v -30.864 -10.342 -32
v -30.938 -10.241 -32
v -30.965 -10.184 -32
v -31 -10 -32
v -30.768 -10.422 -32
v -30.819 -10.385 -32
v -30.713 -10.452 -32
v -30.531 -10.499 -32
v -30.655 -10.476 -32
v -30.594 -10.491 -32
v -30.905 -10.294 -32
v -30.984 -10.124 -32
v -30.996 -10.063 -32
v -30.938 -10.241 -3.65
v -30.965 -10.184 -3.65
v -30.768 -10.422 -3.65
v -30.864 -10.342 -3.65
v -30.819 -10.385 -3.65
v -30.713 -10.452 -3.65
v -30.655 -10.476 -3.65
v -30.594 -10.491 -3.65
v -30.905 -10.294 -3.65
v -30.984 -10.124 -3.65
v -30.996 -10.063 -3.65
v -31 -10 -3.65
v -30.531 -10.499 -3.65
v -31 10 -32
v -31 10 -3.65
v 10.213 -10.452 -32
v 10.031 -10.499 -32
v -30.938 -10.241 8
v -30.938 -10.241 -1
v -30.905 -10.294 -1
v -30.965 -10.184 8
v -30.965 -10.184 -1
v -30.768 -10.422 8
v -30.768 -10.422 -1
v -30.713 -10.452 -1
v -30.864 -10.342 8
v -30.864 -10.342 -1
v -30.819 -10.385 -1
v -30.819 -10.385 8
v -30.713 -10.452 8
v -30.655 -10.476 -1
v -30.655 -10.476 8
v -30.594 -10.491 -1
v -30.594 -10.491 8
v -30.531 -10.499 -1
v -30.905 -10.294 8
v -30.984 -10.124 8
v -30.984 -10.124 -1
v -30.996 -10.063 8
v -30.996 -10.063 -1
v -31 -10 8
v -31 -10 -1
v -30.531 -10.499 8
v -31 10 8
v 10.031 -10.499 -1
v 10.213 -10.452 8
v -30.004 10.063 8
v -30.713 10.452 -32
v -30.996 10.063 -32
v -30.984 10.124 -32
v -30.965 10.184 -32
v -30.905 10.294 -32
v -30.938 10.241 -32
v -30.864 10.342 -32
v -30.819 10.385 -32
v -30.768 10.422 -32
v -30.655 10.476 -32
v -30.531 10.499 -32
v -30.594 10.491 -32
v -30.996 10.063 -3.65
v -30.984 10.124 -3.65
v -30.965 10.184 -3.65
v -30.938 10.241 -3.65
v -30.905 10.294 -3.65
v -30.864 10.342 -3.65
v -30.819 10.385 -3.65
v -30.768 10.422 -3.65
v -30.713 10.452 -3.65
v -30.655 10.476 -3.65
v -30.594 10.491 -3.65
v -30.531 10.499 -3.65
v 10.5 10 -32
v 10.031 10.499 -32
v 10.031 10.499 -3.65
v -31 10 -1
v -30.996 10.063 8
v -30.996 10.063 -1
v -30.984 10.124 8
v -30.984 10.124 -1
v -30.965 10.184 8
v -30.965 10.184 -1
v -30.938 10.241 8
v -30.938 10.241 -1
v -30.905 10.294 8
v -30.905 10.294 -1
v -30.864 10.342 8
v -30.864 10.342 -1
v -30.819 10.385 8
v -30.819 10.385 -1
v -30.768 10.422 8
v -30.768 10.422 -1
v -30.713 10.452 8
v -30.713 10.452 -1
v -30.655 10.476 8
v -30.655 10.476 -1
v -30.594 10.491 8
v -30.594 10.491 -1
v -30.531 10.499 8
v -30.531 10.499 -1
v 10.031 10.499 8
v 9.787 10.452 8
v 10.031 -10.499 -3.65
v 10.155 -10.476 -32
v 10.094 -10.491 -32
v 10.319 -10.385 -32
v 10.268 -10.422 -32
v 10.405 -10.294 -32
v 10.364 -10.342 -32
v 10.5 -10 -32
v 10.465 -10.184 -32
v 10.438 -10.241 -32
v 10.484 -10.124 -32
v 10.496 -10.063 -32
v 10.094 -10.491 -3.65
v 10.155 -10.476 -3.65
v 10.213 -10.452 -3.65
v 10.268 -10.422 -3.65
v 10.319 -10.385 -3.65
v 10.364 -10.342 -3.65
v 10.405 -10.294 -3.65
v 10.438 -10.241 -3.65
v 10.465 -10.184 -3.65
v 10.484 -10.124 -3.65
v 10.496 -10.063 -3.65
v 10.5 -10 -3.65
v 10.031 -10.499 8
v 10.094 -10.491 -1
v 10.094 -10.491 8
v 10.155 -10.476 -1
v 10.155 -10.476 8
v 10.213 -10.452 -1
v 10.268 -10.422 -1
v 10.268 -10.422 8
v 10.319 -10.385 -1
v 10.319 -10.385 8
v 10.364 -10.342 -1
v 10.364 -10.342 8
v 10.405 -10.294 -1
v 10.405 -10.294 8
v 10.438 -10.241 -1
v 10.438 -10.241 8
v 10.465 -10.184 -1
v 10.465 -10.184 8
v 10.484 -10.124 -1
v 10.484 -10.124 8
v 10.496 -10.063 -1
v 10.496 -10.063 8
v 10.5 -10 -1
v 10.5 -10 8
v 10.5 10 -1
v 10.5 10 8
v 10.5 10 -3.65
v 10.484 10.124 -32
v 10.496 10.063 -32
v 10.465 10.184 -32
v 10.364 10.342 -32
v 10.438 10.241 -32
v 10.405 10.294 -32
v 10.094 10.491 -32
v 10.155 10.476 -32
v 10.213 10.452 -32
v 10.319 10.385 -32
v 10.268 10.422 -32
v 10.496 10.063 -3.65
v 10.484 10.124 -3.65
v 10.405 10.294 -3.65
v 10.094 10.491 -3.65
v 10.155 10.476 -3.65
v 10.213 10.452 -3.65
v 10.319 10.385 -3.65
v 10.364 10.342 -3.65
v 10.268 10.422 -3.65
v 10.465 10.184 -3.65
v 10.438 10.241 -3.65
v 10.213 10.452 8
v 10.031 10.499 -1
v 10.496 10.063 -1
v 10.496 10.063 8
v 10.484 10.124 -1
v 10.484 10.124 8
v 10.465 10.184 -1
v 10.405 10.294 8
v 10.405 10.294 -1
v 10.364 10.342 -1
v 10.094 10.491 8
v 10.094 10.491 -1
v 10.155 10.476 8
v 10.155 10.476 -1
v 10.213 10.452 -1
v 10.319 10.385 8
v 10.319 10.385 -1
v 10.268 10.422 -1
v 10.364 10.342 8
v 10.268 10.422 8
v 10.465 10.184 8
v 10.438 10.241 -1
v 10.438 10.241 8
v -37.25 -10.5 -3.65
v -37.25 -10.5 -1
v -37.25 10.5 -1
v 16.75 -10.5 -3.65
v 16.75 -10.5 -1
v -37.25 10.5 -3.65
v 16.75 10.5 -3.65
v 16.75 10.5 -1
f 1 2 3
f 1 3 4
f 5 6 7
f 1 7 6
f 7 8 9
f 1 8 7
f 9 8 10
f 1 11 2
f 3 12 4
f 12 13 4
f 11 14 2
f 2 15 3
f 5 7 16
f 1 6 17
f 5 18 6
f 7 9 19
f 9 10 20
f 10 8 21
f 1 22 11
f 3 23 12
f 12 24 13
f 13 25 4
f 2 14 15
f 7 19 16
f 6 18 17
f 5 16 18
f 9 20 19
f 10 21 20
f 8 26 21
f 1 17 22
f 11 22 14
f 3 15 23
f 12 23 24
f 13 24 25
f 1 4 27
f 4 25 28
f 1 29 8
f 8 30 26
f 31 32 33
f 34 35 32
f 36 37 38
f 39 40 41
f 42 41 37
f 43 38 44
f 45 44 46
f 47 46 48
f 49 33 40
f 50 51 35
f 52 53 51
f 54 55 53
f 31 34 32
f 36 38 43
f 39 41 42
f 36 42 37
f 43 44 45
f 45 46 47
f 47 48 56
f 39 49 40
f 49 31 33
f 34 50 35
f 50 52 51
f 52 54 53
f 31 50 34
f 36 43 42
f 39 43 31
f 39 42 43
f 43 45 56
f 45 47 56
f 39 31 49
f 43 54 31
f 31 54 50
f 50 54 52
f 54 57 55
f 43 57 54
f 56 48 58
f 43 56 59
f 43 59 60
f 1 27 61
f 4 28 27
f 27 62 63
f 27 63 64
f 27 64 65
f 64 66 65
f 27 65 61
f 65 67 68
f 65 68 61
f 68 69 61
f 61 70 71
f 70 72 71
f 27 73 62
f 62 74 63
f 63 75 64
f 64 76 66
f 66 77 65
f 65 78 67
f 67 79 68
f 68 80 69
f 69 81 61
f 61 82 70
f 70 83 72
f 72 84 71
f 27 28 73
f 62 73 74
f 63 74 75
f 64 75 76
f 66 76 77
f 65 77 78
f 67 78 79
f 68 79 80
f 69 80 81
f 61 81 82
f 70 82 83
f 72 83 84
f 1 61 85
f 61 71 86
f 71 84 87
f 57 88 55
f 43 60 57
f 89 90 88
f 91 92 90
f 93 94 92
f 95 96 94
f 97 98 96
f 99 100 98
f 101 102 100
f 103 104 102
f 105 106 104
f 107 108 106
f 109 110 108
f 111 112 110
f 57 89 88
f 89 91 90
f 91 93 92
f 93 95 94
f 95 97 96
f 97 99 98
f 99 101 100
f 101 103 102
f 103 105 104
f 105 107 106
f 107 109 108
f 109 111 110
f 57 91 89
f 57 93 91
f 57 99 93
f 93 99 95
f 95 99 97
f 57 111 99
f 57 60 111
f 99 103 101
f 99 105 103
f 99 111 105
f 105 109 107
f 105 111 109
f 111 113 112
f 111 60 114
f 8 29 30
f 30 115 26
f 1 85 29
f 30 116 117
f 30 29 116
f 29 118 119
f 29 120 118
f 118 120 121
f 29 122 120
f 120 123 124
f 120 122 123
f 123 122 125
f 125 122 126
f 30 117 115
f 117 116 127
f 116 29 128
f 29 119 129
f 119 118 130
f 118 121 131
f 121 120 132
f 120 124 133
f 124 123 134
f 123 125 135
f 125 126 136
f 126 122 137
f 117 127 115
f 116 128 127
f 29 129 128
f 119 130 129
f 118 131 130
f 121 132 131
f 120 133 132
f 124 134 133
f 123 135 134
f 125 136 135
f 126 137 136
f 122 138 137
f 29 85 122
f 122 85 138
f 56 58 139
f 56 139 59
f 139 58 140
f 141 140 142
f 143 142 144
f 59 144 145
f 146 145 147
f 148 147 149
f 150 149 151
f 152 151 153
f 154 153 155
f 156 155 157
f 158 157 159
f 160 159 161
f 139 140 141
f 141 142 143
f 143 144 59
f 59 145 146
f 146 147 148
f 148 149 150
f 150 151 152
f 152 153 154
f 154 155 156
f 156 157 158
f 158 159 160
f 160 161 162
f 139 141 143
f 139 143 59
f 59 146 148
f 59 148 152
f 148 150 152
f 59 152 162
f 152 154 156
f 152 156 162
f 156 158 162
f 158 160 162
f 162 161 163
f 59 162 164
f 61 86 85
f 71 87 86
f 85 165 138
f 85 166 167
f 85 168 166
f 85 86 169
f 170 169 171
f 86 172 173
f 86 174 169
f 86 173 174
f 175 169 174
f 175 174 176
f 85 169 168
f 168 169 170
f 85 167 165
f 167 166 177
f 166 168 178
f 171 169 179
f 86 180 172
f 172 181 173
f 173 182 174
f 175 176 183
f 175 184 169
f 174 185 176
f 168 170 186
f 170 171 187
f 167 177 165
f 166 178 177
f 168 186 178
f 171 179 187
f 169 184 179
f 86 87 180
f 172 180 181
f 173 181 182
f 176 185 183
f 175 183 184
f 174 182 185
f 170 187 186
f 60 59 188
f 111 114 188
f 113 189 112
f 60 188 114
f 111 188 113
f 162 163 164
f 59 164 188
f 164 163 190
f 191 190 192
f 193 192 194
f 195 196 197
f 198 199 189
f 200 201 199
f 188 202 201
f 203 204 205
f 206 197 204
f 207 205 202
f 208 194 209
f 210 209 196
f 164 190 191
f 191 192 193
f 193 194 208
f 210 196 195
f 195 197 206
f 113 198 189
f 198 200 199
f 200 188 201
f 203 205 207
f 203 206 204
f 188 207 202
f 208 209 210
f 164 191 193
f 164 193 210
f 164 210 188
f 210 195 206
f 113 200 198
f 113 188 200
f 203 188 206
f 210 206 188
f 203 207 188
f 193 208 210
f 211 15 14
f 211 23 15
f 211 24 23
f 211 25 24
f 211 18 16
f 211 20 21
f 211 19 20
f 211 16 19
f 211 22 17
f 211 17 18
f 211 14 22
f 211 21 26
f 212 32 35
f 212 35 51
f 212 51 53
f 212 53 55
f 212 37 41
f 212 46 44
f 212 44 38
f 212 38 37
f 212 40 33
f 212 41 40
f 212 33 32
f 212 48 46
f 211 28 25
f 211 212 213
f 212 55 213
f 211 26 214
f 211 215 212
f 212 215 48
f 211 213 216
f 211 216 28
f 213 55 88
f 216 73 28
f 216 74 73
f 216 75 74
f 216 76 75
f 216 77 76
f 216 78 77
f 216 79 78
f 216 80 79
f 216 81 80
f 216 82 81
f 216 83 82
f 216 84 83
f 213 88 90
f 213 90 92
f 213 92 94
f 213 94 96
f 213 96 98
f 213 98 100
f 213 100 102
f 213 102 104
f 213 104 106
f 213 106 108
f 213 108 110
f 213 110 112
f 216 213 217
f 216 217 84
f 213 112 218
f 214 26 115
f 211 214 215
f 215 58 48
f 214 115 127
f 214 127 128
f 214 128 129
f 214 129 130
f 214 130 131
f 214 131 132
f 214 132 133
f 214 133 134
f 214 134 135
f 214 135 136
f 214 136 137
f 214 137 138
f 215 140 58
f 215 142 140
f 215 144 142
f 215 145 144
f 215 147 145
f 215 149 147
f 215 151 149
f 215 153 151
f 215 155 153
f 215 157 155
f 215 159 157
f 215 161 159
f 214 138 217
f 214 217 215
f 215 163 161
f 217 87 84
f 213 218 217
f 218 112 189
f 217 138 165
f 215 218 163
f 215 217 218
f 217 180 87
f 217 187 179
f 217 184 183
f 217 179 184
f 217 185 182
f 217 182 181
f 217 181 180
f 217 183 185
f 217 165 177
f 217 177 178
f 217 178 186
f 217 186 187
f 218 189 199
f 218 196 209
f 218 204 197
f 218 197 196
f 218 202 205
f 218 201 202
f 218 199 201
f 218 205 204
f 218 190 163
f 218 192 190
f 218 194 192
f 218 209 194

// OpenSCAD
$fn = 50;

difference() {
	union() {
		translate(v = [-10.25, 0, -32]) {
			hull() {
				translate(v = [-20.25, 10.0, 0]) {
					cylinder(h = 40, r = 0.5);
				}
				translate(v = [20.25, 10.0, 0]) {
					cylinder(h = 40, r = 0.5);
				}
				translate(v = [-20.25, -10.0, 0]) {
					cylinder(h = 40, r = 0.5);
				}
				translate(v = [20.25, -10.0, 0]) {
					cylinder(h = 40, r = 0.5);
				}
			}
		}
		translate(v = [-37.25, -10.5, -3.65]) {
			cube(size = [54, 21, 2.65]);
		}
	}
	union();
}
